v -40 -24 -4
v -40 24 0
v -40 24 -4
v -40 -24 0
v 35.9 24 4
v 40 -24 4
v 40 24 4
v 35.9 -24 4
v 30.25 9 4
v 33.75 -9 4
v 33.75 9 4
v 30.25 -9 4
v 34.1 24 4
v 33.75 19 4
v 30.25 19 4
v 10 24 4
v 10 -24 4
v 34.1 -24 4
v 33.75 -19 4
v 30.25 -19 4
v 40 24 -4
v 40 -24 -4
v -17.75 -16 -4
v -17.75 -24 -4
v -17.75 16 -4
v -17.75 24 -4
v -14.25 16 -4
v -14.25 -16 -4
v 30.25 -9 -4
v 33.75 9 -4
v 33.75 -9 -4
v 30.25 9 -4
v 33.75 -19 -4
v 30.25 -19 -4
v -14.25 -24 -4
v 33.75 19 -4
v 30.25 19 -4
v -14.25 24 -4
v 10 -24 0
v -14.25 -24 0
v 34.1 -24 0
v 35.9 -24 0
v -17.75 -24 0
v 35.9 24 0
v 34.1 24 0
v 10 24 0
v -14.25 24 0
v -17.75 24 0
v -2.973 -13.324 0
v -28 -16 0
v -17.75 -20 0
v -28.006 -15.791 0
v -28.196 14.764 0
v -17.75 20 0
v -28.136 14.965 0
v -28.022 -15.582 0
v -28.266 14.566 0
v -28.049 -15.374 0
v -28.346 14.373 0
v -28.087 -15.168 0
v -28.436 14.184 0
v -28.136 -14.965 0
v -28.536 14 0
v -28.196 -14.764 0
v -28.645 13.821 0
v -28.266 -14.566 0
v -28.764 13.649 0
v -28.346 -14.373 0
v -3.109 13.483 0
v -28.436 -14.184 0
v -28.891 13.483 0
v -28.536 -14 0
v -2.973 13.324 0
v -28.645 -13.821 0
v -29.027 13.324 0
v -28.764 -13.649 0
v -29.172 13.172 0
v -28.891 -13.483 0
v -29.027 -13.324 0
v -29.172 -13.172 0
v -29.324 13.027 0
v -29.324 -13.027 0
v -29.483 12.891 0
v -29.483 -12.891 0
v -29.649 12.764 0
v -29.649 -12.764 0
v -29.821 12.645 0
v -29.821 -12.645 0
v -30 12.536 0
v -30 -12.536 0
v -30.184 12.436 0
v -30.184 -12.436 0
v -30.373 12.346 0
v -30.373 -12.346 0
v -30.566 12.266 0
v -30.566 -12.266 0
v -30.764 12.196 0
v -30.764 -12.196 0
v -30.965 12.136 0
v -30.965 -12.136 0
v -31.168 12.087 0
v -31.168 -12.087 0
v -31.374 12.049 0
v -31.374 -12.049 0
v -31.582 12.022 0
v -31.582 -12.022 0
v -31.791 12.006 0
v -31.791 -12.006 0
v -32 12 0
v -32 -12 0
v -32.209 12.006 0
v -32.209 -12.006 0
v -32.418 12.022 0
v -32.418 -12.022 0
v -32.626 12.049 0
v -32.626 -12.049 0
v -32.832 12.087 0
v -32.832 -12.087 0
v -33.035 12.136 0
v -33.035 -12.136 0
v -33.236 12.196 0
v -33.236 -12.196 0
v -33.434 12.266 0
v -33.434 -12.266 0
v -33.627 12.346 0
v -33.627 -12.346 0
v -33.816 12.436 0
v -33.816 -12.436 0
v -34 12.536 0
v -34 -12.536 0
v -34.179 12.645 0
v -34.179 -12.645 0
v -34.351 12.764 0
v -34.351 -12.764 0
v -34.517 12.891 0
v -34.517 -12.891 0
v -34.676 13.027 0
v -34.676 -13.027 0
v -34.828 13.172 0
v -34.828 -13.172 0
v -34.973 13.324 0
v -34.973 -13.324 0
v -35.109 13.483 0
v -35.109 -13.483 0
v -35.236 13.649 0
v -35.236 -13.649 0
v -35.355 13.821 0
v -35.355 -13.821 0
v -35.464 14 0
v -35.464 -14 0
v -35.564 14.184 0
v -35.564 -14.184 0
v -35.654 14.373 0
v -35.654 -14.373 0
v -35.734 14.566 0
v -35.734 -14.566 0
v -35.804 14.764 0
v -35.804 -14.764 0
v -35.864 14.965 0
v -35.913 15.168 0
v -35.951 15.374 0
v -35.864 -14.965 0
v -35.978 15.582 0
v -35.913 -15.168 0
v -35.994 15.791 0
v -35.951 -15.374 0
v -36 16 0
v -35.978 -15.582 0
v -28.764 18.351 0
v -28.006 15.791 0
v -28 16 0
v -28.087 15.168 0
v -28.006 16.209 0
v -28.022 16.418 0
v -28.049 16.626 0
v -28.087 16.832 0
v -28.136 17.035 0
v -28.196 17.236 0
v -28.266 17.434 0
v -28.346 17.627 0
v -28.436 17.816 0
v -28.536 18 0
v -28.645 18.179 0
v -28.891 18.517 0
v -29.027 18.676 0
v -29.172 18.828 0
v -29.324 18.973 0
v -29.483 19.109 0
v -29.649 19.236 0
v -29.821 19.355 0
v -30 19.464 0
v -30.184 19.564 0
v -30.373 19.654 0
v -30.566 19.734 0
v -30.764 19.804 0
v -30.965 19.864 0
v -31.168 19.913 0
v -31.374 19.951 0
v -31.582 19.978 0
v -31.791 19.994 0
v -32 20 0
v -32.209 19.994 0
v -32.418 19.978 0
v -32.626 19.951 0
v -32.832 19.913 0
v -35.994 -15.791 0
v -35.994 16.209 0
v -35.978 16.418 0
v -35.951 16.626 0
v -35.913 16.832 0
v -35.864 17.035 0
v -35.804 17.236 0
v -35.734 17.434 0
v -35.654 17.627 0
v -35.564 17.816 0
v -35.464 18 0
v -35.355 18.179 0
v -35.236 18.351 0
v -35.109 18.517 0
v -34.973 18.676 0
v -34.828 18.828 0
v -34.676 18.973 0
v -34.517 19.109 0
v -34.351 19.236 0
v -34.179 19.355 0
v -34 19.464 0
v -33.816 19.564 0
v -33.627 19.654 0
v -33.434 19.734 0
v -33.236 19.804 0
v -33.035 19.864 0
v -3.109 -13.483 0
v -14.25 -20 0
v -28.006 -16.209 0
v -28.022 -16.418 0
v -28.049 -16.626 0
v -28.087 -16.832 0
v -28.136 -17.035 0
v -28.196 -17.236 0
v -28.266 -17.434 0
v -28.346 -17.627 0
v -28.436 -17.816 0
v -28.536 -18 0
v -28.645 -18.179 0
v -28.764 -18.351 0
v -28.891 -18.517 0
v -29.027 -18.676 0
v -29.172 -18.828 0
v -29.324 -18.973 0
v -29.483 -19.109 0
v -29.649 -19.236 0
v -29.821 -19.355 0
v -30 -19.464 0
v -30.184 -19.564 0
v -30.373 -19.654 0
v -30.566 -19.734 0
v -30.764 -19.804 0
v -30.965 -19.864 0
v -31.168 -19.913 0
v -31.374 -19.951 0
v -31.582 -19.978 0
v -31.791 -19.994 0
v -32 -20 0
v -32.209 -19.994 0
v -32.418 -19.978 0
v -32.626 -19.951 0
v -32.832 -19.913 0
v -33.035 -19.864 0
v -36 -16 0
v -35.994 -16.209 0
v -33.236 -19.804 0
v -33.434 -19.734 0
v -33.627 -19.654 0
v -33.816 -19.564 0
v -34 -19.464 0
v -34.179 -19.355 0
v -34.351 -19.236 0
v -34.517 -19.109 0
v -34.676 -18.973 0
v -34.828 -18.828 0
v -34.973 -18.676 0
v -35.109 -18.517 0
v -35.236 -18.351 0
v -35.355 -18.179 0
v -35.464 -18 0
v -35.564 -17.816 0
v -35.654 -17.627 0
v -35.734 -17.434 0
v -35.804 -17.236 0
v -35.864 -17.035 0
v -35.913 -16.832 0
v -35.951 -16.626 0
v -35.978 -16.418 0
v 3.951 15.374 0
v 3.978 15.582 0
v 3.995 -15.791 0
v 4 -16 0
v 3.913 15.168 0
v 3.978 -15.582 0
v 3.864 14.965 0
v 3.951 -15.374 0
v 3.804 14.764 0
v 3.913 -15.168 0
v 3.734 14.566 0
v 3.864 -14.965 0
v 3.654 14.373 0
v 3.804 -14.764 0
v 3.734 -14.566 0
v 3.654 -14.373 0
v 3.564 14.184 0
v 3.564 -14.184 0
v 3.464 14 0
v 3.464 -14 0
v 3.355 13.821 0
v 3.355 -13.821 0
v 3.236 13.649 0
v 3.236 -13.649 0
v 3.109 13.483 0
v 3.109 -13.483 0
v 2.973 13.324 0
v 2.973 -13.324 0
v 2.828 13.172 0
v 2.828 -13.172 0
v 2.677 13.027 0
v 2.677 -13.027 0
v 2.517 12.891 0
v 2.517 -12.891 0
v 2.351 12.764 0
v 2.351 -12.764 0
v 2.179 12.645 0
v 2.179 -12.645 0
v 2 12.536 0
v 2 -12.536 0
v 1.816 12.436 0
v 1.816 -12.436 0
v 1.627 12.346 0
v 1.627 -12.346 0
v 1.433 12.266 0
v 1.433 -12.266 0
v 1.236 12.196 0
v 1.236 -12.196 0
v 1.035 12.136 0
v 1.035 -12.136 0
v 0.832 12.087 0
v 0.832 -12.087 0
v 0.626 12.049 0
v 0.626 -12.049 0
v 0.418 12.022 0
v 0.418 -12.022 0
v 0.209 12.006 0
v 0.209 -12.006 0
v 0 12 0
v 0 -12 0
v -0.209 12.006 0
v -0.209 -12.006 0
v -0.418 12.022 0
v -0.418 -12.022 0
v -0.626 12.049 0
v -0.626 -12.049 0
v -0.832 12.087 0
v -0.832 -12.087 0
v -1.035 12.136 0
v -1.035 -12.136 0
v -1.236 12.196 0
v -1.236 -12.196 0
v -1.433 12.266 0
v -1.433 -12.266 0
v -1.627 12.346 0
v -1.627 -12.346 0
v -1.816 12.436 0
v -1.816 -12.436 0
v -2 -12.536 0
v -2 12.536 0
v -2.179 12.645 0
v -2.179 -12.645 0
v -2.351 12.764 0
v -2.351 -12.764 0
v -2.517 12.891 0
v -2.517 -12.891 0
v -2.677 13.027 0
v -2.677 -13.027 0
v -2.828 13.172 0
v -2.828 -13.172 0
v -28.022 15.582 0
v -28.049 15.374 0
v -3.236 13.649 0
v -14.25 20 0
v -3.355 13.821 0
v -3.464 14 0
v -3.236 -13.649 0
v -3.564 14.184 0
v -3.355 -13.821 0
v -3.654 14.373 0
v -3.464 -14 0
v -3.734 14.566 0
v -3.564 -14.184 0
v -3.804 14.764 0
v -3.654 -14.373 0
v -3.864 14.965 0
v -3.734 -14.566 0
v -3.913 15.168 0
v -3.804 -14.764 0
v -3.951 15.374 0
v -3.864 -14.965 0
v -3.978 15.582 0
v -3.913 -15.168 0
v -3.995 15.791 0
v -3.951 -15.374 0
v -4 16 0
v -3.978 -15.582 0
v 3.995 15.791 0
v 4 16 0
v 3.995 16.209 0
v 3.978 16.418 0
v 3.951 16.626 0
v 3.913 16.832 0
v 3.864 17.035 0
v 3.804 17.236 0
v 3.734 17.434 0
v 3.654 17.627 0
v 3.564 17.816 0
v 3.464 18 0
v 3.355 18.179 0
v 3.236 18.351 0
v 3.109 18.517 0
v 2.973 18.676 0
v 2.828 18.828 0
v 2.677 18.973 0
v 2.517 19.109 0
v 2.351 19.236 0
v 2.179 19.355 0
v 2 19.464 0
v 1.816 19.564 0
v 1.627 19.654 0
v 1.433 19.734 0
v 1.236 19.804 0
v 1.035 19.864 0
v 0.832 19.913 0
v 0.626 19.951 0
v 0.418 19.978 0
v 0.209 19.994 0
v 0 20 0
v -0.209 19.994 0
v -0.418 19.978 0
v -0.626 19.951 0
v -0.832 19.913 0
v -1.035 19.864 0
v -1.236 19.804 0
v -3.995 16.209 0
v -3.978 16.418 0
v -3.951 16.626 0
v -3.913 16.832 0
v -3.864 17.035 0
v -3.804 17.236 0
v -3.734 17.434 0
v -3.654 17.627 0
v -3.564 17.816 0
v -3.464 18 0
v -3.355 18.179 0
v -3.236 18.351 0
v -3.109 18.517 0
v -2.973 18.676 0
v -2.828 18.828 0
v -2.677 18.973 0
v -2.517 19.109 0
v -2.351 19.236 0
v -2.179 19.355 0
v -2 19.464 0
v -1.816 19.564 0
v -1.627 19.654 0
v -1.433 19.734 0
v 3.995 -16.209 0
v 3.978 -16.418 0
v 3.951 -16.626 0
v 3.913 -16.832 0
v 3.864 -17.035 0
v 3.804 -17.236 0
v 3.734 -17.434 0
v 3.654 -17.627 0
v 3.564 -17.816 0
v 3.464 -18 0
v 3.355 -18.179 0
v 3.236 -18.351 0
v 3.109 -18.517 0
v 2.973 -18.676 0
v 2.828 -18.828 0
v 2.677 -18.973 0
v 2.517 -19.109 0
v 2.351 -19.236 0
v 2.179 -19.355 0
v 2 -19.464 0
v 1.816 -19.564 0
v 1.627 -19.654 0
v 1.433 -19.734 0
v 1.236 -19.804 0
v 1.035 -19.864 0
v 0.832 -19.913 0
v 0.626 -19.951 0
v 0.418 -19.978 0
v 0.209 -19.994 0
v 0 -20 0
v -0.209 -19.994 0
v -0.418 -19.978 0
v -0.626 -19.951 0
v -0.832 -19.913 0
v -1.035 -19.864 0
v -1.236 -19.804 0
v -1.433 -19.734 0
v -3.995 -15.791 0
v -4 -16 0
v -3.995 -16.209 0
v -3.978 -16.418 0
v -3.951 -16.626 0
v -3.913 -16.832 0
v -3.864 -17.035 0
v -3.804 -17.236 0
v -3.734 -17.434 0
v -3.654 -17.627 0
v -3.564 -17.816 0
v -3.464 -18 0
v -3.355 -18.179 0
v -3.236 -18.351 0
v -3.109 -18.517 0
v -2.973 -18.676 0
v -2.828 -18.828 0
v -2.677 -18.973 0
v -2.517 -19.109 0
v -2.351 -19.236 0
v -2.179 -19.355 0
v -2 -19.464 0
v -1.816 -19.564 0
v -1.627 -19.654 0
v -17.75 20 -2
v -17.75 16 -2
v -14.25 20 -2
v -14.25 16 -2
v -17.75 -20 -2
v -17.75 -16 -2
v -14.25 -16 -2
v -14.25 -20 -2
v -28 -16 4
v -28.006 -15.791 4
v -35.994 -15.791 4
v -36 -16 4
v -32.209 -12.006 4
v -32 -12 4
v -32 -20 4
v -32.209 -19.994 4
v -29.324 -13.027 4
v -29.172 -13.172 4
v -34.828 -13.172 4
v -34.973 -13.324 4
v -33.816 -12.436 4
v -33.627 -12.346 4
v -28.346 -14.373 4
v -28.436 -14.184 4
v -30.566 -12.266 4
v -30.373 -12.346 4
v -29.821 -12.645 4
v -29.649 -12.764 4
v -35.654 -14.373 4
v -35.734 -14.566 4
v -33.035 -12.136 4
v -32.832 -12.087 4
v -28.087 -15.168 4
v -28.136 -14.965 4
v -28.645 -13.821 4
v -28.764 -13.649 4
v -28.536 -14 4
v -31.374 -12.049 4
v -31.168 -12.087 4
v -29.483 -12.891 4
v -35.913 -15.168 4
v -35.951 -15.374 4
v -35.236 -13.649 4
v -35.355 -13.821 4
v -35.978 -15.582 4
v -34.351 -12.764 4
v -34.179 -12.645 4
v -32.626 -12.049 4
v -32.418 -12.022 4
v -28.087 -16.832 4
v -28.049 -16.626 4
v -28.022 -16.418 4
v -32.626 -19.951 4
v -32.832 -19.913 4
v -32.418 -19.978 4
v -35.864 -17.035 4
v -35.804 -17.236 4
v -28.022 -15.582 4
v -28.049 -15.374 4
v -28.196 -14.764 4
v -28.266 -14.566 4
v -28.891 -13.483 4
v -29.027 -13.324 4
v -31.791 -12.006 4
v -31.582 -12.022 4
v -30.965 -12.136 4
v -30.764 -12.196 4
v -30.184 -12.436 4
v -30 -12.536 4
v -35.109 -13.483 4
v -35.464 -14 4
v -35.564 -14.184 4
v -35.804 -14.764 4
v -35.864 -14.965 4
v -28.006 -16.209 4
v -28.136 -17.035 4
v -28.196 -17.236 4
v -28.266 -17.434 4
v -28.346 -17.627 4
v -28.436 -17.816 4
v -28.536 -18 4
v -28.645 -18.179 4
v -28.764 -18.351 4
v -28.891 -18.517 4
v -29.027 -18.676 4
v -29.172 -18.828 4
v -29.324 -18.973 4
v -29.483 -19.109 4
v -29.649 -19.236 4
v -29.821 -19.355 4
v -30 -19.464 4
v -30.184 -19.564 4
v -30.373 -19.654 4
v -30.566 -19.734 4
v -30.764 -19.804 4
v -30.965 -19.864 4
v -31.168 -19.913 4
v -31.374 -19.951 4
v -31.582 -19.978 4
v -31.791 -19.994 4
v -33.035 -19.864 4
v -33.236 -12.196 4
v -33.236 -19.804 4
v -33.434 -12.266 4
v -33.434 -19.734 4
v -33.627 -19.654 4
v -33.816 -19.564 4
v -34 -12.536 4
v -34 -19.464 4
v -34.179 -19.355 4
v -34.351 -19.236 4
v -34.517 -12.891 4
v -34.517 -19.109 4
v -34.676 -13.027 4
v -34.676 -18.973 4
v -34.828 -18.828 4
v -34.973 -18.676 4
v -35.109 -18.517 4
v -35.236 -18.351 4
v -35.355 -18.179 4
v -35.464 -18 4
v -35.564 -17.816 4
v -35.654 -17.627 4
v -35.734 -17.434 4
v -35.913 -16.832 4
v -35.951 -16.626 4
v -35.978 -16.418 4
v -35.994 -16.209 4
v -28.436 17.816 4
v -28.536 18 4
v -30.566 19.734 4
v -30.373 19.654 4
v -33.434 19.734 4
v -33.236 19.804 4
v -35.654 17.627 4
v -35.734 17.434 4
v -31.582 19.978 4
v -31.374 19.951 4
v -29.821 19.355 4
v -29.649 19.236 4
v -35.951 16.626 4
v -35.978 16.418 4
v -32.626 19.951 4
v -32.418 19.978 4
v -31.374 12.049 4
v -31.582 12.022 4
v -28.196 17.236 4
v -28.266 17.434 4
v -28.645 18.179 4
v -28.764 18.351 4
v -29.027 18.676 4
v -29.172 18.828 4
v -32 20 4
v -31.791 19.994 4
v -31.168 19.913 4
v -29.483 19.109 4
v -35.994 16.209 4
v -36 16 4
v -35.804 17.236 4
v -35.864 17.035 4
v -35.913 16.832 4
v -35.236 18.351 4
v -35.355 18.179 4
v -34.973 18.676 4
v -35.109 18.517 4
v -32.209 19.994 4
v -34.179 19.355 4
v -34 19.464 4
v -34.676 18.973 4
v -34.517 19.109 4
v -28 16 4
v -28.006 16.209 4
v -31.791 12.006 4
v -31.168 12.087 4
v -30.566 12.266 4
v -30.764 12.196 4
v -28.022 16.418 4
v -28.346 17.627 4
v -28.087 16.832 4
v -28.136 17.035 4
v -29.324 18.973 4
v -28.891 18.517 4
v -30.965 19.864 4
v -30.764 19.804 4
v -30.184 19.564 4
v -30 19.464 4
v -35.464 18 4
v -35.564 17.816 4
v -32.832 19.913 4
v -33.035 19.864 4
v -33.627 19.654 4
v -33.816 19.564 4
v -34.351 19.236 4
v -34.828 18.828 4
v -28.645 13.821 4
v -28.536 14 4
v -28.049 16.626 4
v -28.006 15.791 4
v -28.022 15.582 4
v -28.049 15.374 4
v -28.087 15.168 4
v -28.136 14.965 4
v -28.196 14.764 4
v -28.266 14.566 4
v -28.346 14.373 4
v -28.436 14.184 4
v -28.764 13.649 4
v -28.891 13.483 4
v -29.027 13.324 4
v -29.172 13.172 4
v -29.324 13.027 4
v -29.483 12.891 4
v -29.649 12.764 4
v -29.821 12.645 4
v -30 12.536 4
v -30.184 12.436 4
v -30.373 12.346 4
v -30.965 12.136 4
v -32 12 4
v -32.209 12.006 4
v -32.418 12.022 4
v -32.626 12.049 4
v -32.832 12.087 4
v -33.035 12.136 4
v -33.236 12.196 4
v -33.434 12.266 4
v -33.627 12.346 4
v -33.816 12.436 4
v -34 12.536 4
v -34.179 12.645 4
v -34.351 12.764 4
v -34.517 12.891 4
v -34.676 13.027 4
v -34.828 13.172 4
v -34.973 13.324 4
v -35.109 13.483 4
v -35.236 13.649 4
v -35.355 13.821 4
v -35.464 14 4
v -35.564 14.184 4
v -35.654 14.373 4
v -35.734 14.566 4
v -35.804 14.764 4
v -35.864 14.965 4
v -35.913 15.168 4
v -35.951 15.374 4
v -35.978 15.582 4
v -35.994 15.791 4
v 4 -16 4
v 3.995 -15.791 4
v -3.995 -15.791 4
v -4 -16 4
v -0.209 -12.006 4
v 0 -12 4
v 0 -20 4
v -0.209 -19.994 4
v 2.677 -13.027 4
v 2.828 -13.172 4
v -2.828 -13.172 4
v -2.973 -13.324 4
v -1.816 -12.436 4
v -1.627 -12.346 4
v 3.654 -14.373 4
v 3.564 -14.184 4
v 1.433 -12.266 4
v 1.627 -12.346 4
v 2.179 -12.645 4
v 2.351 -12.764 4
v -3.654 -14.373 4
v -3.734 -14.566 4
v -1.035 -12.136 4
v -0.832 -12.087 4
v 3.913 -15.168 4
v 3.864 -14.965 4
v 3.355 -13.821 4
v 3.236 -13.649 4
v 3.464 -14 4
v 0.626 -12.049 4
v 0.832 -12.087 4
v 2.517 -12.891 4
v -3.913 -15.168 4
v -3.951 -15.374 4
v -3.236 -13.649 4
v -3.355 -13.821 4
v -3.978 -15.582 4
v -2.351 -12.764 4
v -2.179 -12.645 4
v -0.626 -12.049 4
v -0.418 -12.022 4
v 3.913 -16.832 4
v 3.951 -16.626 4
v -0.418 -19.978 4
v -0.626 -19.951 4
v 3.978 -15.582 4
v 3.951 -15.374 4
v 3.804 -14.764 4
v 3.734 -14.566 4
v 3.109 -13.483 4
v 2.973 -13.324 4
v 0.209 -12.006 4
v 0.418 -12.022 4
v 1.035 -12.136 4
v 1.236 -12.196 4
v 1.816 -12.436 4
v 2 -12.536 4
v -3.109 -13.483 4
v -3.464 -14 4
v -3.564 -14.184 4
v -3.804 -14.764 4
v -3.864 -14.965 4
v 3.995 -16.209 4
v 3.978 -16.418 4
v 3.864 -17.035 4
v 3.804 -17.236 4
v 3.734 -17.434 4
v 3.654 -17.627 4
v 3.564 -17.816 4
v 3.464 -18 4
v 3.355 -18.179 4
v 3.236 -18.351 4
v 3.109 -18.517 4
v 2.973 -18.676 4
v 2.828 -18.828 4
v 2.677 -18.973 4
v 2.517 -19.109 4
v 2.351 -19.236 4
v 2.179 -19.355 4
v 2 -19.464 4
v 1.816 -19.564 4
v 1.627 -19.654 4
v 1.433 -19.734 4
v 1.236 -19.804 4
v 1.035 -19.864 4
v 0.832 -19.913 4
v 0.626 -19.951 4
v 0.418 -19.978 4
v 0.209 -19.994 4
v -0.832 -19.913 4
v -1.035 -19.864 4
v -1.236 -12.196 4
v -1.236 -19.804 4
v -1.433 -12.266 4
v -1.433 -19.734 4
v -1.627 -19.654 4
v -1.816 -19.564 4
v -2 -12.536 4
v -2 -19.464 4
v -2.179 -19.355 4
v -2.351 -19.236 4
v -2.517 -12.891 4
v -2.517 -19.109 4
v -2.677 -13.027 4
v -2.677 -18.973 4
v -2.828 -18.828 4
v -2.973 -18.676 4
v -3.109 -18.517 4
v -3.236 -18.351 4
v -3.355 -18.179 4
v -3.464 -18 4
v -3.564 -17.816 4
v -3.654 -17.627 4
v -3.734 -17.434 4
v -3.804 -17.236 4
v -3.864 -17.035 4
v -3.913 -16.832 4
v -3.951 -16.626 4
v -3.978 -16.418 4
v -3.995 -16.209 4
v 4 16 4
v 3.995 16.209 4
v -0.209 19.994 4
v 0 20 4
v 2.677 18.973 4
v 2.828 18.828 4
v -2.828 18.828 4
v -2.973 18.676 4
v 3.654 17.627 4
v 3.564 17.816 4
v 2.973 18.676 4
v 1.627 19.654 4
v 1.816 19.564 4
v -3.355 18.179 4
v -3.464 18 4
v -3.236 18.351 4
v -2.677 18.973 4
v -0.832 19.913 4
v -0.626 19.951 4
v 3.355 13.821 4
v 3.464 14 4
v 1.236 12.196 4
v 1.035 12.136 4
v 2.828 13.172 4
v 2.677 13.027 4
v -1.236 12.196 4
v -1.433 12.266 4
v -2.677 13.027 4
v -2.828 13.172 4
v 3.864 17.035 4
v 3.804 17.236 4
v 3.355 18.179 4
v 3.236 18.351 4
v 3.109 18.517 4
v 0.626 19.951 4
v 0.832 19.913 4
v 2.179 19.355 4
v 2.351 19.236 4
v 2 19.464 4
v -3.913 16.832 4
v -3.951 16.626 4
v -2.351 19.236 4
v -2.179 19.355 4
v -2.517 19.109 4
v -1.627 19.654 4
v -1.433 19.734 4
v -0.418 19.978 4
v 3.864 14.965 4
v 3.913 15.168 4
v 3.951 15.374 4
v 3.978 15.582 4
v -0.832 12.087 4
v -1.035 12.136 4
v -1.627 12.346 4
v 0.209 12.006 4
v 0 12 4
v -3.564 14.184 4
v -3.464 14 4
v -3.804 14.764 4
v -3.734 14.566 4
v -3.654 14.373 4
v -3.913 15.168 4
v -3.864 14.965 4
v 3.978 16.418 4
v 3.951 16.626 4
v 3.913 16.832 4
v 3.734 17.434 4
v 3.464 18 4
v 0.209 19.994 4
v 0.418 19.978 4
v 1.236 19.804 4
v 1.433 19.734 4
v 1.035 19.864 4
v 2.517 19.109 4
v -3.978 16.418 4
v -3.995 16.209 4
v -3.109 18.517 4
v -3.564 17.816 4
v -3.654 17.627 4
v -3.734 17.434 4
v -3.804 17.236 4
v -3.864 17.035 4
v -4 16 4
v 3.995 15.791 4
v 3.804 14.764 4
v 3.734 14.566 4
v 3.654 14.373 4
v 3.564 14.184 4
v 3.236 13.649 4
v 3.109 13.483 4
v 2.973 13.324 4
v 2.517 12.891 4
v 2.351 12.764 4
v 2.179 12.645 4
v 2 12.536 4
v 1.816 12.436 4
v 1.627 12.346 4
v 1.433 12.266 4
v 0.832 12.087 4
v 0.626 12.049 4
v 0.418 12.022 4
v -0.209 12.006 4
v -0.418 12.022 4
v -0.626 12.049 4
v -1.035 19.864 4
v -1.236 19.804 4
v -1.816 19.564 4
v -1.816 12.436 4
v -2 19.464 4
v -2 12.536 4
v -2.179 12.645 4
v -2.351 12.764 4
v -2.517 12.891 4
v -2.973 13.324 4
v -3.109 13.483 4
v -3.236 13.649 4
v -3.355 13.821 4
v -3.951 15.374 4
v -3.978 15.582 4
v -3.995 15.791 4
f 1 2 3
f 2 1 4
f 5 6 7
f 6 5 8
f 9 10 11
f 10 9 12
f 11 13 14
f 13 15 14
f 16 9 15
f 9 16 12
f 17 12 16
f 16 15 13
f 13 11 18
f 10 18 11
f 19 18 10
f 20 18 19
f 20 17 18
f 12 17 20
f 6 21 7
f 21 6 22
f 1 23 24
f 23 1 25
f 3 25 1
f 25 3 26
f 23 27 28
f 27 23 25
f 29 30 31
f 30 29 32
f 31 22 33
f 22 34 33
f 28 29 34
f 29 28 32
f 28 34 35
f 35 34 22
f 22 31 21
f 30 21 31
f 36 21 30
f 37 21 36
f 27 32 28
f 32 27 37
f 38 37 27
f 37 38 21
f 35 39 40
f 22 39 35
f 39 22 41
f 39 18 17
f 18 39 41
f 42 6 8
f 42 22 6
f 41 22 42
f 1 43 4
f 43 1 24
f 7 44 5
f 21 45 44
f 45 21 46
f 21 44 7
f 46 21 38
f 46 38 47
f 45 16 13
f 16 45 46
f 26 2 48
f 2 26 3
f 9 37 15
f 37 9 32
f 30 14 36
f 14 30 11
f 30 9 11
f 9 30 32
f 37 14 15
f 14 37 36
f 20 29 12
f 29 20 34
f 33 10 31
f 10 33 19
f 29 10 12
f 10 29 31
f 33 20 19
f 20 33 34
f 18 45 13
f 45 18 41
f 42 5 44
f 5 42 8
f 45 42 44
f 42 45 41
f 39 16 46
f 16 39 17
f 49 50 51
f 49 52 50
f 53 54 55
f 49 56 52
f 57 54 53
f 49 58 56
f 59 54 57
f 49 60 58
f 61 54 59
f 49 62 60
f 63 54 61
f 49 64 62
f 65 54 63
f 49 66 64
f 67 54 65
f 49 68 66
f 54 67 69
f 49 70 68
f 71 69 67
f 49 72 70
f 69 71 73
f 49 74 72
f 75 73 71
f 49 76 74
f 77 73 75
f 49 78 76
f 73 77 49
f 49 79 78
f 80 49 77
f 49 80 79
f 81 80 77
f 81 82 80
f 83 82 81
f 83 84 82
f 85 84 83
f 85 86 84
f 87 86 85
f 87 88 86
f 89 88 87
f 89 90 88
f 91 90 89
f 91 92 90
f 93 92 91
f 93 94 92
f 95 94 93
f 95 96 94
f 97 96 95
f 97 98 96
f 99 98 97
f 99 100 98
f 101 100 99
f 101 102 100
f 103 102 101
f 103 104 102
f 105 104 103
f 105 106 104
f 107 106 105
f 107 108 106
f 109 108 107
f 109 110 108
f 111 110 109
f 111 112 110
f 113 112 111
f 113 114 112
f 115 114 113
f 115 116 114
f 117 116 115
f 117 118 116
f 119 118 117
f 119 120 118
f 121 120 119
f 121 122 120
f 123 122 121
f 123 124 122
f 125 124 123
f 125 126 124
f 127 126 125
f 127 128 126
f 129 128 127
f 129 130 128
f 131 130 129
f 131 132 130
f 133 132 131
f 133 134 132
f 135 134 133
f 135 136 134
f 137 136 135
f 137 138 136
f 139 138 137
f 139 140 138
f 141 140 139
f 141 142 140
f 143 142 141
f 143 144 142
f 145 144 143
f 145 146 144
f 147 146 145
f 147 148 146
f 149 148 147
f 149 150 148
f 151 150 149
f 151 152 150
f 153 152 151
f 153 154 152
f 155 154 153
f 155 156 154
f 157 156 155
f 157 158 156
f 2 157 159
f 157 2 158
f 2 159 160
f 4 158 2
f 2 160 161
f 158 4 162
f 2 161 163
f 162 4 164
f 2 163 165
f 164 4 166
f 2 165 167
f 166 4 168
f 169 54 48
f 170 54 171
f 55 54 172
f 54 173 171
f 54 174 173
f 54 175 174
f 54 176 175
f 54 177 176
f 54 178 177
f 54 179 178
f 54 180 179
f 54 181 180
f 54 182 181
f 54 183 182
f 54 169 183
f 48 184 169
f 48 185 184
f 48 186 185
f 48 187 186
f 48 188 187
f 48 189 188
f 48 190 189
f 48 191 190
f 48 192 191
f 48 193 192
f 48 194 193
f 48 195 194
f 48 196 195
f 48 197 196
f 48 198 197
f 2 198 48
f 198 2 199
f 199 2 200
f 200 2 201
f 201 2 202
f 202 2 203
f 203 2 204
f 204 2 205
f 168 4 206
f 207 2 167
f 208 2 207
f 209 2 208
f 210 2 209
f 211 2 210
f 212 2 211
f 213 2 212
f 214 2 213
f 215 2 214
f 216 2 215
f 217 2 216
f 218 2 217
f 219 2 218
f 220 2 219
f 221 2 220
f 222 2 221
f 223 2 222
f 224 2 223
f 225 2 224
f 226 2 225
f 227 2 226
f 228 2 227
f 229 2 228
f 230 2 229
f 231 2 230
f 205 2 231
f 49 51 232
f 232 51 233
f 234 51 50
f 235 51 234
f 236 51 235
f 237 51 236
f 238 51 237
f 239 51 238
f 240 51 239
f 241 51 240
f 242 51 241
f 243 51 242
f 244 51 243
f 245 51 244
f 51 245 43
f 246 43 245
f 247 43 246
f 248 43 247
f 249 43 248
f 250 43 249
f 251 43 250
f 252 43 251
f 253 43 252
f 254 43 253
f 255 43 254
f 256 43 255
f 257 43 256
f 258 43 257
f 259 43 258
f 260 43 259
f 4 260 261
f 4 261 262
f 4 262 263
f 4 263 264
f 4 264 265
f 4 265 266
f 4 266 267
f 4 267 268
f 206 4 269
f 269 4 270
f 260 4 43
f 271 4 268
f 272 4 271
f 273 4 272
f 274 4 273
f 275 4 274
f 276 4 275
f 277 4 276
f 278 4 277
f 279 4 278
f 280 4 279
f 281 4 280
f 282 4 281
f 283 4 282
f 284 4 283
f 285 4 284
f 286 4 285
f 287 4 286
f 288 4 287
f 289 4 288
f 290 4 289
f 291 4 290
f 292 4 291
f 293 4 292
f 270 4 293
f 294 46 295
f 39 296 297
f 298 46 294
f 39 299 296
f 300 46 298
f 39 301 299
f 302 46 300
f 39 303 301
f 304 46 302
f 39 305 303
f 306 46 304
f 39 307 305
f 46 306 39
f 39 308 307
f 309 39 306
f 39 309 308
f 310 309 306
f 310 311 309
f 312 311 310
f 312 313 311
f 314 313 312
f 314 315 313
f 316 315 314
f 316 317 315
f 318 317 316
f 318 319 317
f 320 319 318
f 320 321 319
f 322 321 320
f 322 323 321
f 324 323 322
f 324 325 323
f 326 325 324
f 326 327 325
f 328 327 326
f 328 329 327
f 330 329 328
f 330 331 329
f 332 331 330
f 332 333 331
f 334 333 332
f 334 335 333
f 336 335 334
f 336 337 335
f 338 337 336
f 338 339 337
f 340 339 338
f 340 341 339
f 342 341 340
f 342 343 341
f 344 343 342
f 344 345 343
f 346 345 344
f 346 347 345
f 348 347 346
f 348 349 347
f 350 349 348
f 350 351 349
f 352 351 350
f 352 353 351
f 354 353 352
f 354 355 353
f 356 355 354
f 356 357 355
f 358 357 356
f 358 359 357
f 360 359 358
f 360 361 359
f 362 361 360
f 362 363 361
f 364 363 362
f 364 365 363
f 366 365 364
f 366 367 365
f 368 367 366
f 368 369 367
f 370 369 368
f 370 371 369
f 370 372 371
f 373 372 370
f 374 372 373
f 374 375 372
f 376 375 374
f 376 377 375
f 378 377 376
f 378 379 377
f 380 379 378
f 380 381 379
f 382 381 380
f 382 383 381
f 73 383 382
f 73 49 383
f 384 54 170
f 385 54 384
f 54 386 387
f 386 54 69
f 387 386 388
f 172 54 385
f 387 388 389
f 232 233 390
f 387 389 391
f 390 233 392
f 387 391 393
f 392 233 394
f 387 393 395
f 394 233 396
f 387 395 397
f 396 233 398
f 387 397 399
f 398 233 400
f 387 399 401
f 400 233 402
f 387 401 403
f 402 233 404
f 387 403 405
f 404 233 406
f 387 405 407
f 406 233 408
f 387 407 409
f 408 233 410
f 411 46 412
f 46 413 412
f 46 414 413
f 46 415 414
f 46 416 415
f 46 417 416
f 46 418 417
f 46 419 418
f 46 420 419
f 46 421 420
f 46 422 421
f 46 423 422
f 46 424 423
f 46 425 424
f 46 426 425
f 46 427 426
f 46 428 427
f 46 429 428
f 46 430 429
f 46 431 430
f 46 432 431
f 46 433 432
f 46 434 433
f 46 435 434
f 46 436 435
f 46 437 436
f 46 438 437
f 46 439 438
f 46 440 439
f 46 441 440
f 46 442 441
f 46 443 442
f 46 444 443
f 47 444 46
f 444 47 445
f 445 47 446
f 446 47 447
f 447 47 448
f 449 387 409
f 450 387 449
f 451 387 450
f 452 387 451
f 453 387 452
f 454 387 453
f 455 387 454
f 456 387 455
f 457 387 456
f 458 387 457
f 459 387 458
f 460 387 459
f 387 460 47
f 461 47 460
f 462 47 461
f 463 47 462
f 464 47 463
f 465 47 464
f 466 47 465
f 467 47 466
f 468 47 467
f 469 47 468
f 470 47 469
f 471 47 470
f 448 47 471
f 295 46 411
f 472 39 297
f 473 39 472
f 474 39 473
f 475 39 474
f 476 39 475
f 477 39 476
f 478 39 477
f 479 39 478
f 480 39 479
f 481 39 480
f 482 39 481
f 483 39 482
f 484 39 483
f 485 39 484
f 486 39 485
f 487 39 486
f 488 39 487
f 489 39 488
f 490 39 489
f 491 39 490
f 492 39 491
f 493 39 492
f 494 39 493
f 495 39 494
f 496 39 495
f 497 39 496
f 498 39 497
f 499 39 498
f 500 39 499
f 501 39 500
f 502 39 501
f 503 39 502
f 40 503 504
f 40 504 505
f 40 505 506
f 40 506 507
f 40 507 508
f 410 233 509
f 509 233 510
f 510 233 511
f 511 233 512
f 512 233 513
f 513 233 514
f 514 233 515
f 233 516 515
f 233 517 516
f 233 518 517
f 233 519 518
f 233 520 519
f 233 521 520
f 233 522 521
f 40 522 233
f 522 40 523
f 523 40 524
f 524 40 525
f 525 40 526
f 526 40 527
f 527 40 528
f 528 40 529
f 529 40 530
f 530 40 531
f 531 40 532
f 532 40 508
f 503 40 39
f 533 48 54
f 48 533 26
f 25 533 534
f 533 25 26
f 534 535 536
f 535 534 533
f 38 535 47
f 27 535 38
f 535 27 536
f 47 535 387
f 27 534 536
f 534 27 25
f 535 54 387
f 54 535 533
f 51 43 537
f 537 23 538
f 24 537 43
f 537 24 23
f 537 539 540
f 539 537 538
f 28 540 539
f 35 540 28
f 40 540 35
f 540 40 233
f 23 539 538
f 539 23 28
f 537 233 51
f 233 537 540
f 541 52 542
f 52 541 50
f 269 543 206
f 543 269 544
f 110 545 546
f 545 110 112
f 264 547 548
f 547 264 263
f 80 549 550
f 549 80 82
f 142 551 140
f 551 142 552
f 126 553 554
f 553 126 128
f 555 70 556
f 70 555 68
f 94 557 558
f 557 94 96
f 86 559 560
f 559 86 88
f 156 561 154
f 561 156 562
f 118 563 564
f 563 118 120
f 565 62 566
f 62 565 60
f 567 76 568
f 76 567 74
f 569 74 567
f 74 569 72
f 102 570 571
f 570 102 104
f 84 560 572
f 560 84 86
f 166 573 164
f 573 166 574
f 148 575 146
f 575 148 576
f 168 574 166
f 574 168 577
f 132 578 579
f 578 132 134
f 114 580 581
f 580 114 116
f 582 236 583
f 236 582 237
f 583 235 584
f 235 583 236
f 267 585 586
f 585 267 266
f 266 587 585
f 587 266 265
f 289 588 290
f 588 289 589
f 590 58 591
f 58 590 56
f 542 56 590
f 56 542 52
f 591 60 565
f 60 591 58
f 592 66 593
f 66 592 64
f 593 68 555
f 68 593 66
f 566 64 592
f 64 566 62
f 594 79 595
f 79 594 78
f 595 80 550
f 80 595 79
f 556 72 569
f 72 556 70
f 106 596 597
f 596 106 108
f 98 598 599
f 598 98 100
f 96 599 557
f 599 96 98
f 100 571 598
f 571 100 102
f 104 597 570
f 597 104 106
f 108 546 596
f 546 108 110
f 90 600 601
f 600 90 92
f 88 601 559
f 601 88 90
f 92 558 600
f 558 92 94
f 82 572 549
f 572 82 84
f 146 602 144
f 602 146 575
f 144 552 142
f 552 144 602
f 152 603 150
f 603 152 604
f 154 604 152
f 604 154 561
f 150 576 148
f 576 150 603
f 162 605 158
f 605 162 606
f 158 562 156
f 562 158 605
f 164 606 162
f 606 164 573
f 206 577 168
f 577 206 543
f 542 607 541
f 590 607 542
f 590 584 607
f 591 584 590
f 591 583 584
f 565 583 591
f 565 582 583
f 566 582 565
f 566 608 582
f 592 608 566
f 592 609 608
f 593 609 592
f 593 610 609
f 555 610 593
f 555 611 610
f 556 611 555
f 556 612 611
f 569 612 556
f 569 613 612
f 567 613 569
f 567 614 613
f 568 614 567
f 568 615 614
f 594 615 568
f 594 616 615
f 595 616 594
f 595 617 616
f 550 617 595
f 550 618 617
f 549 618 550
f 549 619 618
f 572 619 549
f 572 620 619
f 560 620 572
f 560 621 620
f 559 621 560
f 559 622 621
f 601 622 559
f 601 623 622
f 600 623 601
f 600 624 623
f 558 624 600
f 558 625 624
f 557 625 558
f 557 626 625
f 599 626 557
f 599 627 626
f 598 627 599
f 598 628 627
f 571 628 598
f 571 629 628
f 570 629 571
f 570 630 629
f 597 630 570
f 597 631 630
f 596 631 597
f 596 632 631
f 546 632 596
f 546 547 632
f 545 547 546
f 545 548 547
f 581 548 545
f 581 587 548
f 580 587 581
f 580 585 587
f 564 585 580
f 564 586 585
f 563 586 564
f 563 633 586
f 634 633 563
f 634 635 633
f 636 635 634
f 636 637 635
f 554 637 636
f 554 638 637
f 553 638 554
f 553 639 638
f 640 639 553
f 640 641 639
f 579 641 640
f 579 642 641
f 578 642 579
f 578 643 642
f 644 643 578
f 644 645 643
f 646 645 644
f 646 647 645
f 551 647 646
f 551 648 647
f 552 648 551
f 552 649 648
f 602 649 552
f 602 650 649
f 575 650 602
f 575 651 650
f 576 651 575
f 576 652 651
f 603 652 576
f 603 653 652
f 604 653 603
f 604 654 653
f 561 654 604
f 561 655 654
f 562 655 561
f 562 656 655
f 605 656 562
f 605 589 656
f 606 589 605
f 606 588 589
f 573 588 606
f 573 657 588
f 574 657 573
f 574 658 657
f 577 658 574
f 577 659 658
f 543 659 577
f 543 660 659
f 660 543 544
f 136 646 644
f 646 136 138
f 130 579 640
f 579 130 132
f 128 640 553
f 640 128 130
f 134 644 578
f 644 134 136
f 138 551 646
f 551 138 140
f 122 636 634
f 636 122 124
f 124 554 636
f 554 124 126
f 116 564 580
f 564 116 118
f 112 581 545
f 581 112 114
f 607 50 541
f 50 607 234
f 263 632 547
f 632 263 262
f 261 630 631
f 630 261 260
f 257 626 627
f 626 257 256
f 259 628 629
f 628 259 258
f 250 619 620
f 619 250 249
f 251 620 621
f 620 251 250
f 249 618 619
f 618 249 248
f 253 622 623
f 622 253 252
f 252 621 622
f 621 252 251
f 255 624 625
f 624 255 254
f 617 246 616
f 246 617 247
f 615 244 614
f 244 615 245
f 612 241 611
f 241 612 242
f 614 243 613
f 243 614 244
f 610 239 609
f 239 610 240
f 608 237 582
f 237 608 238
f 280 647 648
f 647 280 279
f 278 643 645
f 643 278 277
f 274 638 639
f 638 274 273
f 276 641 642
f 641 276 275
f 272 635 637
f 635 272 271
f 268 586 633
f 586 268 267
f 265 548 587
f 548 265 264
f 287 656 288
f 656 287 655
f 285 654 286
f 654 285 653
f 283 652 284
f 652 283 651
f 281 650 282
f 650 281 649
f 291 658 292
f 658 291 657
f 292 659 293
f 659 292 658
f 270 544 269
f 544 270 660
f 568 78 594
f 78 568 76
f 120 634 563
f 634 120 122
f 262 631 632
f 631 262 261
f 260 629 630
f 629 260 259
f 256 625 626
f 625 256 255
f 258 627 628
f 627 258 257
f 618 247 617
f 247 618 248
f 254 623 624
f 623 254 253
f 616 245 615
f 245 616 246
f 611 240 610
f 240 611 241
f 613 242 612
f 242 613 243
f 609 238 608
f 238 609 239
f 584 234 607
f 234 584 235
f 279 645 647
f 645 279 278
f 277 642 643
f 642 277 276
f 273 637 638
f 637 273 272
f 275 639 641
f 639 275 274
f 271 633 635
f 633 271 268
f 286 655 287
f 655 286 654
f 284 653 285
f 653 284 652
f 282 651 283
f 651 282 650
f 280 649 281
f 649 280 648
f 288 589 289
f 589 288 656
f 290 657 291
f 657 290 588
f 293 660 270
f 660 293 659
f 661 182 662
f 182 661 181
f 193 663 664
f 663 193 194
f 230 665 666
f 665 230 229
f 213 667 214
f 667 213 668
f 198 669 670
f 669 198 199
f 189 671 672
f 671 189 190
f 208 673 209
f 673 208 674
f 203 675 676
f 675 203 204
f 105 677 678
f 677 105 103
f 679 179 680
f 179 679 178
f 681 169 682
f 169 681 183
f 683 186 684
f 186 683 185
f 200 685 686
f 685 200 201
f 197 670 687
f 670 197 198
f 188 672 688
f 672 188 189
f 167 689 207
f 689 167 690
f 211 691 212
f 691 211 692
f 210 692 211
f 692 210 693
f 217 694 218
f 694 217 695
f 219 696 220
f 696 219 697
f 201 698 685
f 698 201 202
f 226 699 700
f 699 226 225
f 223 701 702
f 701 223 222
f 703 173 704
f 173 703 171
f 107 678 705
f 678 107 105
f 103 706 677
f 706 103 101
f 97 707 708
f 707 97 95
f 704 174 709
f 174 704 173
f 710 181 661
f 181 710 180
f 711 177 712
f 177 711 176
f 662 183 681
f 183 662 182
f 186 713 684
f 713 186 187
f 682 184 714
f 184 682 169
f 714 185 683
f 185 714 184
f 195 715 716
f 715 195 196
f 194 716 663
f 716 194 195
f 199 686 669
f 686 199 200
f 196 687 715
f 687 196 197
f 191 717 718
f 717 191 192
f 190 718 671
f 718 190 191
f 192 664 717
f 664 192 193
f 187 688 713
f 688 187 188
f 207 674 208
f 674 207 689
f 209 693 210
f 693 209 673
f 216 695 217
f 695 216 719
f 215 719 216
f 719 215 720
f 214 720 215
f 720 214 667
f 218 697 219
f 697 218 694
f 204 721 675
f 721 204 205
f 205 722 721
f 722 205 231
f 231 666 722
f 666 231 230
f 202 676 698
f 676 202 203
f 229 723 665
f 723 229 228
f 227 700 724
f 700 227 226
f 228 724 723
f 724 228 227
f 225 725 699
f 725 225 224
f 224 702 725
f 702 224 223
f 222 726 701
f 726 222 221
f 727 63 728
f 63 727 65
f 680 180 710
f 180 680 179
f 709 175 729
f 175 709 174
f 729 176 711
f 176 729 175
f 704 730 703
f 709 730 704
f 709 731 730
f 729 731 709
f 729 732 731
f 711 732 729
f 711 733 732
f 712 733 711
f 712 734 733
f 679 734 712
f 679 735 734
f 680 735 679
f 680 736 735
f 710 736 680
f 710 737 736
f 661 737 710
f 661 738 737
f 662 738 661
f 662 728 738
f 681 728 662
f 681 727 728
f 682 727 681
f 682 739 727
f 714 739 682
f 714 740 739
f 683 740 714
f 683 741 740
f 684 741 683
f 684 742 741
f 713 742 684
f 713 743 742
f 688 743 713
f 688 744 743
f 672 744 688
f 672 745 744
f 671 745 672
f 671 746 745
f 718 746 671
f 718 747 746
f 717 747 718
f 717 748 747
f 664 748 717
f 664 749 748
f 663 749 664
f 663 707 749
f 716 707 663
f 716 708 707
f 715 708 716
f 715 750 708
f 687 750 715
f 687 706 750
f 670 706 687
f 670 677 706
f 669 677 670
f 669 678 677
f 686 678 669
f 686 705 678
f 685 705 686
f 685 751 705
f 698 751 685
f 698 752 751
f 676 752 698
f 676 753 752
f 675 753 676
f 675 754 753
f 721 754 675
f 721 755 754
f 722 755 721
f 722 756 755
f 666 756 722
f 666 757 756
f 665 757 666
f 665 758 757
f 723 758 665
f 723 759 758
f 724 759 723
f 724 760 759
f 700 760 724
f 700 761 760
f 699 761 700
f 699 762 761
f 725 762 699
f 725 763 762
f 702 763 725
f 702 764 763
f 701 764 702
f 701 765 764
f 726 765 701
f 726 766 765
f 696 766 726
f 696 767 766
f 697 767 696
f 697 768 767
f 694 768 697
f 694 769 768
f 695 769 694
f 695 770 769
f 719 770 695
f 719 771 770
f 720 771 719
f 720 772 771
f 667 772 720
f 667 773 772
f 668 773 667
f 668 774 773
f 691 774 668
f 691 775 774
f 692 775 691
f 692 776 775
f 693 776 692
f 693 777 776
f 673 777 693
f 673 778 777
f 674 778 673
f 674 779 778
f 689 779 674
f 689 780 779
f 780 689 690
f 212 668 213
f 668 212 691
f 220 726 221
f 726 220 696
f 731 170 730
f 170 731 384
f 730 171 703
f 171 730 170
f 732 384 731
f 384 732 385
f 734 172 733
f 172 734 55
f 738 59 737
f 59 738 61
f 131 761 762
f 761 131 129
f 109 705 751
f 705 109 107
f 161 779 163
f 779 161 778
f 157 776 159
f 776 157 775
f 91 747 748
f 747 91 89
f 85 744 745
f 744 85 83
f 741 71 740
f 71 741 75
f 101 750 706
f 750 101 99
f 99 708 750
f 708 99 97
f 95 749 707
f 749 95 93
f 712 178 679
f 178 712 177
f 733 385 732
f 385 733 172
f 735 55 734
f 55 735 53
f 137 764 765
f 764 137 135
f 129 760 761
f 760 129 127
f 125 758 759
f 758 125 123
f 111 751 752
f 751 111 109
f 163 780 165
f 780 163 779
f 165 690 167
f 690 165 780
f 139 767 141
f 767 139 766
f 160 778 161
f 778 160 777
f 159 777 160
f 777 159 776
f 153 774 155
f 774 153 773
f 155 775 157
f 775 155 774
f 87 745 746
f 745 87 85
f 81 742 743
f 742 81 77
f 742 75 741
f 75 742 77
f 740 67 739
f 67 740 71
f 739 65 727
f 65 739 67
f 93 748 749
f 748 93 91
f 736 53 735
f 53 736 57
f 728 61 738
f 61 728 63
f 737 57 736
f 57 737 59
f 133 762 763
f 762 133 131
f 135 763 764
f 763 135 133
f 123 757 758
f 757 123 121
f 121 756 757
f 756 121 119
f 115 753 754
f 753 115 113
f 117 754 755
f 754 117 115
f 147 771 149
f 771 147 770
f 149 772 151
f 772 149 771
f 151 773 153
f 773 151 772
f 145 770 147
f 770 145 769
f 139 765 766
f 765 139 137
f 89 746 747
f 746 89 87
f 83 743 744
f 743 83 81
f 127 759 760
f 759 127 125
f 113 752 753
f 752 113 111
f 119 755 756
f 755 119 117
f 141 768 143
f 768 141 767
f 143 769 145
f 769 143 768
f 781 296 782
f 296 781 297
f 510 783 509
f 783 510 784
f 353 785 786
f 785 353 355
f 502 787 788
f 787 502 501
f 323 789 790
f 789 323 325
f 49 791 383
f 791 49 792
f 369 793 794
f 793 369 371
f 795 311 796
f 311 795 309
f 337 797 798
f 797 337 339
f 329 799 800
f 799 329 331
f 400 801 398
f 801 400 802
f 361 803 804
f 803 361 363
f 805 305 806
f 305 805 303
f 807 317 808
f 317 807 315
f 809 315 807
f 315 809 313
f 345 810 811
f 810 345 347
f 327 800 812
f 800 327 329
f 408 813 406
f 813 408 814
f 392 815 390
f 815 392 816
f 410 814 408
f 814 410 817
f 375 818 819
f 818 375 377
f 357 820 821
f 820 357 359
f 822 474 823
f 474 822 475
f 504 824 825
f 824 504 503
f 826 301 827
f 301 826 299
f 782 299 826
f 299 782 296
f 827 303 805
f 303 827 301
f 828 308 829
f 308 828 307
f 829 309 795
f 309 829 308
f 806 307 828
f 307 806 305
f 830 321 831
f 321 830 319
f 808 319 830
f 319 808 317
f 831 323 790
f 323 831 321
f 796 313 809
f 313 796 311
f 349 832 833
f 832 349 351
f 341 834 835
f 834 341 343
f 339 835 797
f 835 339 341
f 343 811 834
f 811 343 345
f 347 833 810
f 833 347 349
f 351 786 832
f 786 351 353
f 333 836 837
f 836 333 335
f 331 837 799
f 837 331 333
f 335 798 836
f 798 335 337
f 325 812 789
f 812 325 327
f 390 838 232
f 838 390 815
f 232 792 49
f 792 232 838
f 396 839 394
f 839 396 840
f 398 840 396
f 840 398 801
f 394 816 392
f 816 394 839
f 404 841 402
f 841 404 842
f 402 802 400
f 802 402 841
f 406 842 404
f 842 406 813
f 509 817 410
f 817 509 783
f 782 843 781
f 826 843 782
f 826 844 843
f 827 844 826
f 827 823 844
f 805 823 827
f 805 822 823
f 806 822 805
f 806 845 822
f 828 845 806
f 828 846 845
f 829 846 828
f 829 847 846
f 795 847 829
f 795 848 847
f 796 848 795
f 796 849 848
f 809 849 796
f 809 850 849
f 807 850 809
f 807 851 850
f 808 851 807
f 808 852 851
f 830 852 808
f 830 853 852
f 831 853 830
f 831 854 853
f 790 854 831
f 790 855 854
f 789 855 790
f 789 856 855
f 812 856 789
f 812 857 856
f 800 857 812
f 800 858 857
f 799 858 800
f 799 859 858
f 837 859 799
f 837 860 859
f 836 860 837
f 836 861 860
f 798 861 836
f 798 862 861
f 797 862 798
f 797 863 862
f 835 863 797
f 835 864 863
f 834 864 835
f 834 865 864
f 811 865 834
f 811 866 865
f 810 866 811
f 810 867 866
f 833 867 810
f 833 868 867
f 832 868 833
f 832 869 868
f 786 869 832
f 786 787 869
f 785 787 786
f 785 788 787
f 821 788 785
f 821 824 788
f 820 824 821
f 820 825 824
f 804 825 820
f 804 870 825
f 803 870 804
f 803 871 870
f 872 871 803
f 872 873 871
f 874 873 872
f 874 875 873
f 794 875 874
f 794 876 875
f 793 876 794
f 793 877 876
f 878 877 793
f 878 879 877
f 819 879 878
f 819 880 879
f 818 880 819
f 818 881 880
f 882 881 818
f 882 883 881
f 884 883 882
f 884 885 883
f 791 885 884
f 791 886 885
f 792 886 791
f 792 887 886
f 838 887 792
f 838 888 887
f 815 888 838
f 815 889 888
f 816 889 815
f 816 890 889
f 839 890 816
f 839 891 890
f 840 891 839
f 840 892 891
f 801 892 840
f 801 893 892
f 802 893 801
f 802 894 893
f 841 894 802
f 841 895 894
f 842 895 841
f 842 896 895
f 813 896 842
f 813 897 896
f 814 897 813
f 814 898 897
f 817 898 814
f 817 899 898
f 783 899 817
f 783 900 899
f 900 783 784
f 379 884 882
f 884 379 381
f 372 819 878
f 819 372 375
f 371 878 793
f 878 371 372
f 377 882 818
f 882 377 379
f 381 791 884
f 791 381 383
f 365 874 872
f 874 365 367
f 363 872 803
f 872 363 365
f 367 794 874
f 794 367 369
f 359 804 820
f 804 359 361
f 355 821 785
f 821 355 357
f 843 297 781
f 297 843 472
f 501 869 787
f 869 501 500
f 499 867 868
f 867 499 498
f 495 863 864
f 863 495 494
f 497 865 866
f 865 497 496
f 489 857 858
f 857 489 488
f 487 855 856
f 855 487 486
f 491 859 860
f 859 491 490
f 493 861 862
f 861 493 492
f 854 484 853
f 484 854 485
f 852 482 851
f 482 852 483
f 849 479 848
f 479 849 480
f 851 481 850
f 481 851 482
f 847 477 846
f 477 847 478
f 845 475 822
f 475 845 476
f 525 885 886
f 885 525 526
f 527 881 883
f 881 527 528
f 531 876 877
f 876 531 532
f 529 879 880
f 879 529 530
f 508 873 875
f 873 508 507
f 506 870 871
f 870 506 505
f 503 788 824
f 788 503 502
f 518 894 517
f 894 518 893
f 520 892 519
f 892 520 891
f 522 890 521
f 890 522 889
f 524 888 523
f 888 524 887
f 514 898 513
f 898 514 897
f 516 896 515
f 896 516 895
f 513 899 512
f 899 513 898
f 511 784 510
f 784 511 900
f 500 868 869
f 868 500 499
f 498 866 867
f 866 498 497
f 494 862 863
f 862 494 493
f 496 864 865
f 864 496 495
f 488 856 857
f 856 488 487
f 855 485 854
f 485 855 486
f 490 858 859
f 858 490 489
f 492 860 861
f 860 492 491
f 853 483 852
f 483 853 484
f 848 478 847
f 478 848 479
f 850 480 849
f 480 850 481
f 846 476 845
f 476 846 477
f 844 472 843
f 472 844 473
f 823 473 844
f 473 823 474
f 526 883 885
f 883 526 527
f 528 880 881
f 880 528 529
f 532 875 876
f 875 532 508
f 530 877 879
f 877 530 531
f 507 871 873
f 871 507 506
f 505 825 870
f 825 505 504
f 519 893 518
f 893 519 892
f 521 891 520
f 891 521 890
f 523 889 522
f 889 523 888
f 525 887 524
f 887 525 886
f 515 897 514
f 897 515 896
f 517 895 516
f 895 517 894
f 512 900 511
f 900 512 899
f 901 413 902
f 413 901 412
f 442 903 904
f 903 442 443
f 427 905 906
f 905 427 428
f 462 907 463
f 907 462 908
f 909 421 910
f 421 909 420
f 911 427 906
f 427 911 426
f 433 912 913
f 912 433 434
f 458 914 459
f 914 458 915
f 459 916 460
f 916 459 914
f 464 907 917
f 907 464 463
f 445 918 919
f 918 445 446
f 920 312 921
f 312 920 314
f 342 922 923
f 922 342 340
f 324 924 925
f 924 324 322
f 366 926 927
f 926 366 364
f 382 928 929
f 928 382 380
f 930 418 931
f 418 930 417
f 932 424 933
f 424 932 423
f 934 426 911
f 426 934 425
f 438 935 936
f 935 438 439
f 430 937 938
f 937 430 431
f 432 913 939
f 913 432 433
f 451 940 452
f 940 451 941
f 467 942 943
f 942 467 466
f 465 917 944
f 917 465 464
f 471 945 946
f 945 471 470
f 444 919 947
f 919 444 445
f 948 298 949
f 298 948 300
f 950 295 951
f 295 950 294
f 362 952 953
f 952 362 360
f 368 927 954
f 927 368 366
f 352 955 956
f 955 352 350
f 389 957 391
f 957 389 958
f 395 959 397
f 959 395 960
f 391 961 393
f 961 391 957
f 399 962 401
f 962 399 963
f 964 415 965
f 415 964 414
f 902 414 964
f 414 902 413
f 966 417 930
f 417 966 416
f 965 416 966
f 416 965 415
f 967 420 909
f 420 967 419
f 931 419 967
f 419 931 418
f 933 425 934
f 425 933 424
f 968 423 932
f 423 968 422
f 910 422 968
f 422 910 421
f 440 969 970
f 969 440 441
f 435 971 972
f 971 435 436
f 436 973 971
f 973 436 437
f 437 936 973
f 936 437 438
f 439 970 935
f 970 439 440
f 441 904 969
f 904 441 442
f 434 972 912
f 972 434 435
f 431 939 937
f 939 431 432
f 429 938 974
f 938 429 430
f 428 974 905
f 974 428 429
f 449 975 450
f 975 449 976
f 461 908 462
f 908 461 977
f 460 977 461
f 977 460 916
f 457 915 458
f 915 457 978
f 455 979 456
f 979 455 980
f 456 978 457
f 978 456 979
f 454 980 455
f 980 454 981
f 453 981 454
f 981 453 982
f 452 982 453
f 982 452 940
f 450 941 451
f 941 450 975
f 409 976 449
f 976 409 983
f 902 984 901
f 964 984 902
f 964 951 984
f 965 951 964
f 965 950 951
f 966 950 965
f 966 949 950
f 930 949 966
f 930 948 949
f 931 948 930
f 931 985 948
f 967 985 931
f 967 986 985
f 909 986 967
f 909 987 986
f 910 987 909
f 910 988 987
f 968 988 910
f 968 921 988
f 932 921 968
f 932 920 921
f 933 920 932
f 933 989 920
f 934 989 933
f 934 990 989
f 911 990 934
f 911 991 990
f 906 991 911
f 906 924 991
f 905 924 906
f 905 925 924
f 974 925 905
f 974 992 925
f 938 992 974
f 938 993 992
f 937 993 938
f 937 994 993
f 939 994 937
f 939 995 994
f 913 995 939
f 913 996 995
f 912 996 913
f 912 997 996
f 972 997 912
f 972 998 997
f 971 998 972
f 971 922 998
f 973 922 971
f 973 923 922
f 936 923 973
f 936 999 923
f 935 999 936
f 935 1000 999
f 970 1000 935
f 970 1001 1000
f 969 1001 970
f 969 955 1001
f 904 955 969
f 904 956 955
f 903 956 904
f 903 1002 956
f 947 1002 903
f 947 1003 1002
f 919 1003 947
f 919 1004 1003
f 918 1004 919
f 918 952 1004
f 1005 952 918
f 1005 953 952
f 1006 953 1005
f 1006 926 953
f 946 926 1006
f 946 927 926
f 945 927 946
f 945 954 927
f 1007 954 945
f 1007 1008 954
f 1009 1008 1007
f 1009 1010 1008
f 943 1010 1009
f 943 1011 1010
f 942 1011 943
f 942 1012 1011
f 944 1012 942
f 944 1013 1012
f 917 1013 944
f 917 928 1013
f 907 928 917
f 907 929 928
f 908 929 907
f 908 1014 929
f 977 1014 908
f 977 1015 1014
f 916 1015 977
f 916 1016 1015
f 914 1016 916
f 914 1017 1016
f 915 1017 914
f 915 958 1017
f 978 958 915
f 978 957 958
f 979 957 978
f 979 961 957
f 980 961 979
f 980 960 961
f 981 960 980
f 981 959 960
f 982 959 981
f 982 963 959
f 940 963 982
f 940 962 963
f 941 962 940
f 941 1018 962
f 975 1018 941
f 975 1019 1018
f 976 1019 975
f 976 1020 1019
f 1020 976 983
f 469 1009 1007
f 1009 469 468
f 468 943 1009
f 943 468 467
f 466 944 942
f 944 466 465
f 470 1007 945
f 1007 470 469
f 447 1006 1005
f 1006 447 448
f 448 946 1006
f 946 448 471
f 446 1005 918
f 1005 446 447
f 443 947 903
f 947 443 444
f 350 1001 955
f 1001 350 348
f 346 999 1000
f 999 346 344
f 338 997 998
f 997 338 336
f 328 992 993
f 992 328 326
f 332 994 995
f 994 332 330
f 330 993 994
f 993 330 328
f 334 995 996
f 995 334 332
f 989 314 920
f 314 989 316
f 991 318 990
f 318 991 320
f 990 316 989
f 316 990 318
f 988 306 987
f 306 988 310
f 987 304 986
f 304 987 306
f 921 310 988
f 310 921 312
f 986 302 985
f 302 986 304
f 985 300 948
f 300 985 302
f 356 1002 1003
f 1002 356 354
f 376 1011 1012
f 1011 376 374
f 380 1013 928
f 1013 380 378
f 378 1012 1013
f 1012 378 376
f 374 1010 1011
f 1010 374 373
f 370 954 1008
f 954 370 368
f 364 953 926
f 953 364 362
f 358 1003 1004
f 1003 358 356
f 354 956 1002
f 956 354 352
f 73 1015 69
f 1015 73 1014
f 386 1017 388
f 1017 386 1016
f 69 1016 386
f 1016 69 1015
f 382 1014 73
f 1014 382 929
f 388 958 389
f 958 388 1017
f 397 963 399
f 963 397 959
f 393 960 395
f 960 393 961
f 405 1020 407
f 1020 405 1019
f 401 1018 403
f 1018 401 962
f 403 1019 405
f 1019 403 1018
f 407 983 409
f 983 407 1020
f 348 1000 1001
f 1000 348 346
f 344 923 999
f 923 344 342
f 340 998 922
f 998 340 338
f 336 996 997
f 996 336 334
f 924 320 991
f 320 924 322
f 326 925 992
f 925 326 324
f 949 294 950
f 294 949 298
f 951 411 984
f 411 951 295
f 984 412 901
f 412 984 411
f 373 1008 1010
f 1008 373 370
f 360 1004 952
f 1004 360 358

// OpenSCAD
$fn=120;
difference(){
	 box=[80,48,8];
     cube(box,true);
     translate([32, 14,0])cube([3.5,10,8],true);
     translate([32,-14,0])cube([3.5,10,8],true);
     translate([35,0,2.5])cube([1.8,48,5],true);
     translate([-15,0,2]) cube([50,48,4],true);
     translate([-16,20,-3])cube([3.5,8,2],true);
     translate([-16,22,-2])cube([3.5,4,8],true);
     translate([-16,-20,-3])cube([3.5,8,2],true);
     translate([-16,-22,-2])cube([3.5,4,8],true);
}
difference(){
	 translate([-32,-16,-4])cylinder(r=4,h=8);
}
difference(){
	 translate([-32,16,-4])cylinder(r=4,h=8);
}
difference(){
	 translate([-0,-16,-4])cylinder(r=4,h=8);
}
difference(){
	 translate([-0,16,-4])cylinder(r=4,h=8);
}
